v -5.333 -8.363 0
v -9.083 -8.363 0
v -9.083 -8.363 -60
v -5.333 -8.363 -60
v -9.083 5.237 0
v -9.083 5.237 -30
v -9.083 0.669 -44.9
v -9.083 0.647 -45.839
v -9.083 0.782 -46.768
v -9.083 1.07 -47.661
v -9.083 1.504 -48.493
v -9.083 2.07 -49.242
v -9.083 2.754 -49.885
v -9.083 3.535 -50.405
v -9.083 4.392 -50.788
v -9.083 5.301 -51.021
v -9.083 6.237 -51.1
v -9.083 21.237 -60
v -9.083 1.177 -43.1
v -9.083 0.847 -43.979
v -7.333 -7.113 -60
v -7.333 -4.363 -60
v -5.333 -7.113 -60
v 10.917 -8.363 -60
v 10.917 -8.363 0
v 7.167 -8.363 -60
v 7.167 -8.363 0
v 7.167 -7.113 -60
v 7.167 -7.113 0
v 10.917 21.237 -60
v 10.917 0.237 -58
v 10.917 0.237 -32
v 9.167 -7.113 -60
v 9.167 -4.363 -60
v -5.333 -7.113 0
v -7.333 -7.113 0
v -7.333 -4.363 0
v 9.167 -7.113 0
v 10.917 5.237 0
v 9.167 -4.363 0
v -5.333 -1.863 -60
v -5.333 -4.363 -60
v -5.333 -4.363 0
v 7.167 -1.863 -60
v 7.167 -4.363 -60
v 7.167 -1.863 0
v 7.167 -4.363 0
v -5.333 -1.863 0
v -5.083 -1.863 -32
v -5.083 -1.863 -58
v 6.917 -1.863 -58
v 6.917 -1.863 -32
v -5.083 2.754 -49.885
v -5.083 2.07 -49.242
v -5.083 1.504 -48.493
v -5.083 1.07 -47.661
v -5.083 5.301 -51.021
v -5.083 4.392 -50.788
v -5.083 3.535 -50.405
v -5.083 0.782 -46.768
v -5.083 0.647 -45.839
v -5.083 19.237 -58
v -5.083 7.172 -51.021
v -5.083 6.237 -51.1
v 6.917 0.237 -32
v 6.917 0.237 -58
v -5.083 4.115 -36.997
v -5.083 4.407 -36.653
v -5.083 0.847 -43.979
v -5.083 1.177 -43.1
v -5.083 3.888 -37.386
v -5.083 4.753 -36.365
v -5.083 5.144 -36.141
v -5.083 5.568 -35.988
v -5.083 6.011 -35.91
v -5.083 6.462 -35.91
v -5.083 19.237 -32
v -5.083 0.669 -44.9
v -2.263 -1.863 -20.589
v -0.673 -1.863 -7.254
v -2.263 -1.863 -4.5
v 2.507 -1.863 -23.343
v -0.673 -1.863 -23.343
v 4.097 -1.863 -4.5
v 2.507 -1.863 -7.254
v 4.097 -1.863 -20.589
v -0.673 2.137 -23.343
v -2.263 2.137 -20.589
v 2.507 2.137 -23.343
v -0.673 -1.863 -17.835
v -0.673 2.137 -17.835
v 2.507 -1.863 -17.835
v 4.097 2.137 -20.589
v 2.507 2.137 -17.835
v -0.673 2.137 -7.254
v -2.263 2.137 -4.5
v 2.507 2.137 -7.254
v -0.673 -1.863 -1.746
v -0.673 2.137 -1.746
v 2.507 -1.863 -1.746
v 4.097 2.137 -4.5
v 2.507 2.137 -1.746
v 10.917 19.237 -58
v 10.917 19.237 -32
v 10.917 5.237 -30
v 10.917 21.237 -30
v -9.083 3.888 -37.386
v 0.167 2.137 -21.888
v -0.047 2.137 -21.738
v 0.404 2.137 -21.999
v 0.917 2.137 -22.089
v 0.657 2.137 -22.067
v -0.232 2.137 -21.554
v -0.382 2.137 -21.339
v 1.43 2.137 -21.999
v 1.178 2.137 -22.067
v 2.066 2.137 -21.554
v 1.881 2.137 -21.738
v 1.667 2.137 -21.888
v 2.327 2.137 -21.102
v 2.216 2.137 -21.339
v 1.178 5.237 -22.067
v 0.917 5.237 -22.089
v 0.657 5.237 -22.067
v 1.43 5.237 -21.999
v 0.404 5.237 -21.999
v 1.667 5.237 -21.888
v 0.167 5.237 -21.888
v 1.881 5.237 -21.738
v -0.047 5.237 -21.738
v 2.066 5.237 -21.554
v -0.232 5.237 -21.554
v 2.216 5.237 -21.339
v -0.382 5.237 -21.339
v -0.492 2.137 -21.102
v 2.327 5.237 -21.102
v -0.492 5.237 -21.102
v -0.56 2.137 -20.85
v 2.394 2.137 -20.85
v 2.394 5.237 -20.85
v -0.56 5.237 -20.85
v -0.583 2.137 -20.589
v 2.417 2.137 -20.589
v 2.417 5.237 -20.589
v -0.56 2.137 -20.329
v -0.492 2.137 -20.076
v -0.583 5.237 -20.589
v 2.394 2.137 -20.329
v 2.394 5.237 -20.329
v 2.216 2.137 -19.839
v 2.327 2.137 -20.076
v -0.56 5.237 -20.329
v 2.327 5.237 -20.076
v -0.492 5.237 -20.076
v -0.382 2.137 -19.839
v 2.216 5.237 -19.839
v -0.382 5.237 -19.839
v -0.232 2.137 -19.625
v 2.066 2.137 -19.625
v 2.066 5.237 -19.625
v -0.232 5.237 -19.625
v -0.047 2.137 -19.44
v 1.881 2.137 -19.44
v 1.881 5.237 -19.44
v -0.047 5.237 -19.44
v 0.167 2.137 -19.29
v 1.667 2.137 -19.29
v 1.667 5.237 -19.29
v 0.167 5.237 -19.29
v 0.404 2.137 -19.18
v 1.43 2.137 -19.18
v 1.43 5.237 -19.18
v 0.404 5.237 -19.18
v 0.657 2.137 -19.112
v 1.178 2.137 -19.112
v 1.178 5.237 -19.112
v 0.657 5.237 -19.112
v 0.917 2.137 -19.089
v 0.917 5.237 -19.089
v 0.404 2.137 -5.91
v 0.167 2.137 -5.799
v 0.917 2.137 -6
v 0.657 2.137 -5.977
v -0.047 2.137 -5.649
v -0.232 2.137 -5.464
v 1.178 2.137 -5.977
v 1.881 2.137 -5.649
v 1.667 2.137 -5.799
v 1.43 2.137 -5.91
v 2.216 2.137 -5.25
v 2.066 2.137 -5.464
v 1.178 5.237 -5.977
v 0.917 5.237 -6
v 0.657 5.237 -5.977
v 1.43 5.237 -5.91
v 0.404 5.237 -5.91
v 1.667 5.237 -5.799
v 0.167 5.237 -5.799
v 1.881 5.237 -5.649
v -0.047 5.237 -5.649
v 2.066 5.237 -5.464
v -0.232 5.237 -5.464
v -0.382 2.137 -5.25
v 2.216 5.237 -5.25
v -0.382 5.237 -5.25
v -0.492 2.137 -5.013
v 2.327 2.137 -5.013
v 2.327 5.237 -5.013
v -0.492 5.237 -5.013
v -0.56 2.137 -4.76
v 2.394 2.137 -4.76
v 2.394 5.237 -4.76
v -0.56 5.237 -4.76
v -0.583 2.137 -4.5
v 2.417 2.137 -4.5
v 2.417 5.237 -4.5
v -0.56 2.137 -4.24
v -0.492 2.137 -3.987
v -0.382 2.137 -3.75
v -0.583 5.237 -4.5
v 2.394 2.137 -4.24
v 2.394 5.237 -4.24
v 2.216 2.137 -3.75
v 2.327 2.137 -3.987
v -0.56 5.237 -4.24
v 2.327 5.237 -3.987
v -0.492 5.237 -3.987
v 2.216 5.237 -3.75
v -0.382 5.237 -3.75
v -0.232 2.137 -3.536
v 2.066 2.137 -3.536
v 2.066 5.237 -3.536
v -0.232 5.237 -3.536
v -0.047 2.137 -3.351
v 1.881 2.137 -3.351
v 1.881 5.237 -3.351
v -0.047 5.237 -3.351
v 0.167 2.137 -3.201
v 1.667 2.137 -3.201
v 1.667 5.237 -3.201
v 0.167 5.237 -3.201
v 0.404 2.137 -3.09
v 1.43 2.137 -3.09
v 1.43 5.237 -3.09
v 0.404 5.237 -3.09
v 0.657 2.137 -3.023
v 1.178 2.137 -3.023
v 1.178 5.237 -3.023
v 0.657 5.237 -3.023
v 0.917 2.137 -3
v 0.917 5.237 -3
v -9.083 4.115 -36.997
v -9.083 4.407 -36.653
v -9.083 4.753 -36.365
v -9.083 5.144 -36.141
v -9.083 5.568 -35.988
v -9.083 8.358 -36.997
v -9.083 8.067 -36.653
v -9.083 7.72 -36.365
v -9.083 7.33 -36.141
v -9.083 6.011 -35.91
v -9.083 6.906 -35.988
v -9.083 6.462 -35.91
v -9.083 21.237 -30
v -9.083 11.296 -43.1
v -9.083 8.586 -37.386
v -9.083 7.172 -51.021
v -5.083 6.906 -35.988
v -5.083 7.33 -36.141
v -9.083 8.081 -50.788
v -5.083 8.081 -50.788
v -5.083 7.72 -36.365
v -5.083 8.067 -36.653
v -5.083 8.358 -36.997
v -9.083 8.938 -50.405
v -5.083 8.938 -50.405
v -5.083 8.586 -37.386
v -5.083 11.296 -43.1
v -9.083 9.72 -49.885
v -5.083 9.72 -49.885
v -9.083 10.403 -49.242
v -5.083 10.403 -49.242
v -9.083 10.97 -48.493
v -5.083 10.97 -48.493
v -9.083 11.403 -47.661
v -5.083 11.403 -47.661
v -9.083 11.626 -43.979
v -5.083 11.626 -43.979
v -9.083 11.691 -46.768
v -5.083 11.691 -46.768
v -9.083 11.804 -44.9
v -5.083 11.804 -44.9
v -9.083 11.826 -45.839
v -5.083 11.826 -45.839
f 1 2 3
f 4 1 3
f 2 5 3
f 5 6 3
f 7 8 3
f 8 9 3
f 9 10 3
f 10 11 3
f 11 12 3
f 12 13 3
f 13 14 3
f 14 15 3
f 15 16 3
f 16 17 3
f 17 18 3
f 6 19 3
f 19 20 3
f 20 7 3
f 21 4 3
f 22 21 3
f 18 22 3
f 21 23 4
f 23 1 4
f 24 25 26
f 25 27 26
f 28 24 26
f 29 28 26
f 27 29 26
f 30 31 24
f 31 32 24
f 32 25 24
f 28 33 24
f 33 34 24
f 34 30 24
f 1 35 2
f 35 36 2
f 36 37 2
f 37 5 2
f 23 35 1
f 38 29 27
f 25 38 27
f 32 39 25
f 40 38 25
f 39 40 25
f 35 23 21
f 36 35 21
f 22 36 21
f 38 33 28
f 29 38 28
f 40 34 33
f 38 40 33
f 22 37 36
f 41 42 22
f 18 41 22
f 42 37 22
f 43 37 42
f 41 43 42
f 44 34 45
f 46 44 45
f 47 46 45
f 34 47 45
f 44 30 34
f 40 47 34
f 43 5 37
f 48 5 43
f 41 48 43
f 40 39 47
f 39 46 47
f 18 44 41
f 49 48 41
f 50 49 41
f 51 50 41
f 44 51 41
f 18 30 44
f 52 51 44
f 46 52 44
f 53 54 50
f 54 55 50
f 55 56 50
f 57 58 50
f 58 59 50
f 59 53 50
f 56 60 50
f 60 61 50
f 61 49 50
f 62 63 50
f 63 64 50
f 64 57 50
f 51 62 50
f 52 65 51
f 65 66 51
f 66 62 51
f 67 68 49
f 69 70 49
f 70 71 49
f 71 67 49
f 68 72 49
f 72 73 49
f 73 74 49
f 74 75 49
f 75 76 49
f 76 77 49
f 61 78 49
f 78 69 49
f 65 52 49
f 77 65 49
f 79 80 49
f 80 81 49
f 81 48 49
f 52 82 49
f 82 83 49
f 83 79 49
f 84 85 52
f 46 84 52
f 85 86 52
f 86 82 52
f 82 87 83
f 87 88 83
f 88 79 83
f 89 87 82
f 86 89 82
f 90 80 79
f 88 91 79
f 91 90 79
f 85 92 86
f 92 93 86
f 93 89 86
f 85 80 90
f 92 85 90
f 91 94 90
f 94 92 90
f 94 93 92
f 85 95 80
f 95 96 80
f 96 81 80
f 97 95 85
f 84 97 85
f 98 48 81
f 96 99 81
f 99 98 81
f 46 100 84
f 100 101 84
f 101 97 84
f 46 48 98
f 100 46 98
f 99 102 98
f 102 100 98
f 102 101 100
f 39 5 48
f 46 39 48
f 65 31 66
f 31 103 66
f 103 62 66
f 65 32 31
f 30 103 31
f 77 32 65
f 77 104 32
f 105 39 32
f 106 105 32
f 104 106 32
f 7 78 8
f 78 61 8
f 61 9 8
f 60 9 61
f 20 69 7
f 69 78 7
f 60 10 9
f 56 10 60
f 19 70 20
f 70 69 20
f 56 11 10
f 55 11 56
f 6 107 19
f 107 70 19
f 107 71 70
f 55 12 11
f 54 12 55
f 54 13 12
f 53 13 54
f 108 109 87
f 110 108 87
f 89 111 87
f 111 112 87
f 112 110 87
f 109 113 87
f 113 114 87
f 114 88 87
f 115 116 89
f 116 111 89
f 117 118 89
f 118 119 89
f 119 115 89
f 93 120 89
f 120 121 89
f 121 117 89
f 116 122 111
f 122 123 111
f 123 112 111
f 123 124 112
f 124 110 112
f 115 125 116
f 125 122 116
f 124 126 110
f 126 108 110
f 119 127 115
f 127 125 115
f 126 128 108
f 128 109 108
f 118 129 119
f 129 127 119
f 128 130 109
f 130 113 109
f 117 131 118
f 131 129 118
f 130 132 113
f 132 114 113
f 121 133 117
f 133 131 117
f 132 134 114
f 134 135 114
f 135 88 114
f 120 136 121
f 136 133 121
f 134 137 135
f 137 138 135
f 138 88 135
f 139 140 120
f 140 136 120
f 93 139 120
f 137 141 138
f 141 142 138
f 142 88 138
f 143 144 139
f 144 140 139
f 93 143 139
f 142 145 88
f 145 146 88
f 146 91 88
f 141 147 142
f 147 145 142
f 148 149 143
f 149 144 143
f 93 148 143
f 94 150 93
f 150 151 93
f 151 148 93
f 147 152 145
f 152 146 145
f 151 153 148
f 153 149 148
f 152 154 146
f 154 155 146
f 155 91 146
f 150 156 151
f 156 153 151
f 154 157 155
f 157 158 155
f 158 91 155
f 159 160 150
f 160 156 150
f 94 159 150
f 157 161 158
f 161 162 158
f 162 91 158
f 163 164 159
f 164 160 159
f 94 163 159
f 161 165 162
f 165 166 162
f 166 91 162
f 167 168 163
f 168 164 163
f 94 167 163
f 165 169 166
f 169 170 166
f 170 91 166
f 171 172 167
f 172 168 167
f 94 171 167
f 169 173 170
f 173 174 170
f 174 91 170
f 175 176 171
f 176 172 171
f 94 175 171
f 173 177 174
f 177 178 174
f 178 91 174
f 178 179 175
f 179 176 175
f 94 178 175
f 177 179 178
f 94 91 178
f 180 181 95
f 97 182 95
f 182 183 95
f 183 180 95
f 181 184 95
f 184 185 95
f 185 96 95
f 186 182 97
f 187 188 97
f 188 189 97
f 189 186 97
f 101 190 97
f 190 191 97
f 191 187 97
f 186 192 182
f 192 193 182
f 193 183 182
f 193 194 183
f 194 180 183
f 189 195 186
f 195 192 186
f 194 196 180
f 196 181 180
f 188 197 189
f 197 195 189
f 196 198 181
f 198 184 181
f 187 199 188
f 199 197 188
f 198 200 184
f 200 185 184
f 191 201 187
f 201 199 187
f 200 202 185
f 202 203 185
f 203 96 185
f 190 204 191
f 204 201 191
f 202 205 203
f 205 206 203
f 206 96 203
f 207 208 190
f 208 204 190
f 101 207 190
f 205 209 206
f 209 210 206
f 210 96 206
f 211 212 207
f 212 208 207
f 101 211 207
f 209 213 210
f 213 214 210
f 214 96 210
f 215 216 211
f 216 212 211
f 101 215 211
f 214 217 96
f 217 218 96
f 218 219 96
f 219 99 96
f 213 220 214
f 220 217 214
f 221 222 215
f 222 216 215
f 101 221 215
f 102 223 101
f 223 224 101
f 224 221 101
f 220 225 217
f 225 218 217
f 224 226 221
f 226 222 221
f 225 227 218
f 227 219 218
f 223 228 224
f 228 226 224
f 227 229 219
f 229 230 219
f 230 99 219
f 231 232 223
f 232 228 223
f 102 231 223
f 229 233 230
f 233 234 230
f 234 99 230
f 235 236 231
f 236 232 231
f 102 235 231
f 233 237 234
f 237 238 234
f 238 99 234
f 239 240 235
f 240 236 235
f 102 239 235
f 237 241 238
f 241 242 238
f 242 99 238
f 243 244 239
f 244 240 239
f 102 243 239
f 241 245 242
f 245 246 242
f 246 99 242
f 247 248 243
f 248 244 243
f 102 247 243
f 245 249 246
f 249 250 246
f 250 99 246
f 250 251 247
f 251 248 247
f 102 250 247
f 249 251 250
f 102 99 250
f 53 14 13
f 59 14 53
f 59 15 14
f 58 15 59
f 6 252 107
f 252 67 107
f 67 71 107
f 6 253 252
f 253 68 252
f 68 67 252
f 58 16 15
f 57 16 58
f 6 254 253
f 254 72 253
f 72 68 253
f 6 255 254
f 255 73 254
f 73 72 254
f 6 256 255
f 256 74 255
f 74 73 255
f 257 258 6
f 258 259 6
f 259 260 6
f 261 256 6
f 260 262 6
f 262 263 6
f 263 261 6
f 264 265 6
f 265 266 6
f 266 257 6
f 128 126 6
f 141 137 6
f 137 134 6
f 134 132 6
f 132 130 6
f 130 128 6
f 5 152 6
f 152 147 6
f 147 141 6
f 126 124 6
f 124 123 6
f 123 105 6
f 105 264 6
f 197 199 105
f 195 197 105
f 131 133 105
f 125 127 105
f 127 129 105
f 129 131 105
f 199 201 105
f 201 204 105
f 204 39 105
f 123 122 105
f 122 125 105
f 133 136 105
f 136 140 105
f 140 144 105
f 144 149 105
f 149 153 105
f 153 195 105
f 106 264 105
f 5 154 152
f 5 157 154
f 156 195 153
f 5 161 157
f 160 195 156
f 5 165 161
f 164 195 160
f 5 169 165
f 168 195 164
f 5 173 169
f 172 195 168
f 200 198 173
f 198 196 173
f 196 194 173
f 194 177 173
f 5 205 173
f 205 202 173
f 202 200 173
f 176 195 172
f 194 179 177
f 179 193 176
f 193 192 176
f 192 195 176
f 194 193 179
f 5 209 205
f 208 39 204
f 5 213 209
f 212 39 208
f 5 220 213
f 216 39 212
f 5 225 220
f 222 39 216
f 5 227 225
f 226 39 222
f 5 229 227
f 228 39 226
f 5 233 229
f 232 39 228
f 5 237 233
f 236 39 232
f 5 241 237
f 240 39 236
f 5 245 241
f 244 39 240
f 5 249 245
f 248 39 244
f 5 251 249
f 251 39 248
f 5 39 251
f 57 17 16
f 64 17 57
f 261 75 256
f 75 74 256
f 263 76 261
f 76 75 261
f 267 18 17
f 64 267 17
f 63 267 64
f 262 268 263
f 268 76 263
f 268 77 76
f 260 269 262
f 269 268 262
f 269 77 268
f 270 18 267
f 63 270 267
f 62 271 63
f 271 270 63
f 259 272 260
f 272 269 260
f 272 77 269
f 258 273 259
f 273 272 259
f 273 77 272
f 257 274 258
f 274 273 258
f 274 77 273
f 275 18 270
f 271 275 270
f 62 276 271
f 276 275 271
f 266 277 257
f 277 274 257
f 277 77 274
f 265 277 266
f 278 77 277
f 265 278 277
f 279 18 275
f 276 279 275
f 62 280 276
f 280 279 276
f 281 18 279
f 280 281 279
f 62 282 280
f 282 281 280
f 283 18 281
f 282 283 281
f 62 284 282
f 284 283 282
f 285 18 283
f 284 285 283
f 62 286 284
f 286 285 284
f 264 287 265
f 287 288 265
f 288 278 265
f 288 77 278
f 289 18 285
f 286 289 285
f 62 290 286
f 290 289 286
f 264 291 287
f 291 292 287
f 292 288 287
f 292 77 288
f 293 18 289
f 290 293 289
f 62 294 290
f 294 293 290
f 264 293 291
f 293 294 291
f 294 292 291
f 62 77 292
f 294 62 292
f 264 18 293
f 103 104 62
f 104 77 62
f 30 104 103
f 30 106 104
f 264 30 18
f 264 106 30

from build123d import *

# Parameters (mm, degrees)
SKETCH1_W           = 20
SKETCH1_H           = 13.6
BOSS_EXTRUDE1_DEPTH = 65
SKETCH3_R           = 1.5
CUT_EXTRUDE2_DEPTH  = 68.298918099
SKETCH5_W           = 35
SKETCH5_H           = 5
CUT_EXTRUDE4_DEPTH  = 69.519668815
SKETCH6_W           = 12
SKETCH6_H           = 31
CUT_EXTRUDE5_DEPTH  = 5
SKETCH7_W           = 20
SKETCH7_H           = 35
BOSS_EXTRUDE2_DEPTH = 21
SKETCH8_W           = 31
SKETCH8_H           = 19
CUT_EXTRUDE6_DEPTH  = 16
CUT_EXTRUDE7_DEPTH  = 71.228177029
SKETCH11_W          = 5
SKETCH11_H          = 29.6
CUT_EXTRUDE8_DEPTH  = 72.246030408
BOSS_EXTRUDE3_REACH = 68.716
SKETCH12_W          = 2
SKETCH12_H          = 29.6
CUT_EXTRUDE9_DEPTH  = 65.576940359
CUT_EXTRUDE10_DEPTH = 4


with BuildPart() as part:
    # Sketch1 → Boss-Extrude1 (new body)
    with BuildSketch(Plane.XY):
        with Locations((0.917159763, -1.563313609)):
            Rectangle(SKETCH1_W, SKETCH1_H)
    extrude(amount=-BOSS_EXTRUDE1_DEPTH)

    # Sketch3 → Cut-Extrude2 (cut, through all)
    with BuildSketch(Plane(origin=(0, 5.236686391, 0), x_dir=(1, 0, 0), z_dir=(0, 1, 0))):
        with Locations(Location((0.917159763, 4.5, 0), (0, 0, 270))):
            Circle(SKETCH3_R)
        with Locations(Location((0.917159763, 20.589405581, 0), (0, 0, 270))):
            Circle(SKETCH3_R)
    extrude(amount=-CUT_EXTRUDE2_DEPTH, mode=Mode.SUBTRACT)

    # Sketch5 → Cut-Extrude4 (cut, through all)
    with BuildSketch(Plane(origin=(10.917159763, 0, 0), x_dir=(0, 0, -1), z_dir=(1, 0, 0))):
        with Locations((47.5, 2.736686391)):
            Rectangle(SKETCH5_W, SKETCH5_H)
    extrude(amount=-CUT_EXTRUDE4_DEPTH, mode=Mode.SUBTRACT)

    # Sketch6 → Cut-Extrude5 (cut)
    with BuildSketch(Plane(origin=(0, 0.236686391, 0), x_dir=(1, 0, 0), z_dir=(0, 1, 0))):
        with Locations((0.917159763, 47.5)):
            Rectangle(SKETCH6_W, SKETCH6_H)
    extrude(amount=-CUT_EXTRUDE5_DEPTH, mode=Mode.SUBTRACT)

    # Sketch7 → Boss-Extrude2 (add)
    with BuildSketch(Plane(origin=(0, 0.236686391, 0), x_dir=(1, 0, 0), z_dir=(0, 1, 0))):
        with Locations((0.917159763, 47.5)):
            Rectangle(SKETCH7_W, SKETCH7_H)
    extrude(amount=BOSS_EXTRUDE2_DEPTH)

    # Sketch8 → Cut-Extrude6 (cut)
    with BuildSketch(Plane(origin=(10.917159763, 0, 0), x_dir=(0, 0, -1), z_dir=(1, 0, 0))):
        with Locations((47.5, 9.736686391)):
            Rectangle(SKETCH8_W, SKETCH8_H)
    extrude(amount=-CUT_EXTRUDE6_DEPTH, mode=Mode.SUBTRACT)

    # Sketch9 → Cut-Extrude7 (cut, through all)
    with BuildSketch(Plane(origin=(-5.082840237, 0, 0), x_dir=(0, 0, -1), z_dir=(1, 0, 0))):
        with BuildLine():
            Line((37.385714286, 8.585806938), (43.1, 11.296330647))
            ThreePointArc((43.1, 11.296330647), (51.1, 6.236686391), (43.1, 1.177042134))
            Line((43.1, 1.177042134), (37.385714286, 3.887565843))
            ThreePointArc((37.385714286, 3.887565843), (35.9, 6.236686391), (37.385714286, 8.585806938))
        make_face()
    extrude(amount=-CUT_EXTRUDE7_DEPTH, mode=Mode.SUBTRACT)

    # Sketch11 → Cut-Extrude8 (cut, through all)
    with BuildSketch(Plane(origin=(10.917159763, 0, 0), x_dir=(0, 0, -1), z_dir=(1, 0, 0))):
        with Locations((62.5, 6.436686391)):
            Rectangle(SKETCH11_W, SKETCH11_H)
    extrude(amount=-CUT_EXTRUDE8_DEPTH, mode=Mode.SUBTRACT)

    # Boss-Extrude3: up to this face of the body (flat: up to its plane)
    boss_extrude3_end = Plane(part.part.faces().sort_by_distance((-9.082840237, 3.675844839, -34.656950913))[0])
    # Sketch12 → Boss-Extrude3 (add, up to the picked face)
    with BuildSketch(Plane(origin=(10.917159763, 0, 0), x_dir=(0, 0, -1), z_dir=(1, 0, 0)), mode=Mode.PRIVATE) as boss_extrude3_sk1:
        with Locations((59, 6.436686391)):
            Rectangle(SKETCH12_W, SKETCH12_H)
    boss_extrude3_tool1 = split(extrude(boss_extrude3_sk1.sketch, amount=-BOSS_EXTRUDE3_REACH, mode=Mode.PRIVATE), bisect_by=boss_extrude3_end, keep=Keep.BOTH, mode=Mode.PRIVATE)
    add(boss_extrude3_tool1.solids().sort_by(Axis((10.91716, 6.436686, -59), (-1, 0, 0)))[0])

    # Sketch2 → Cut-Extrude9 (cut, through all)
    with BuildSketch(Plane.XY):
        Polygon((-5.332840237, -8.363313609), (-5.332840237, -7.113313609), (-7.332840237, -7.113313609), (-7.332840237, -4.363313609), (-5.332840237, -4.363313609), (-5.332840237, -1.863313609), (7.167159763, -1.863313609), (7.167159763, -4.363313609), (9.167159763, -4.363313609), (9.167159763, -7.113313609), (7.167159763, -7.113313609), (7.167159763, -8.363313609), align=None)
    extrude(amount=-CUT_EXTRUDE9_DEPTH, mode=Mode.SUBTRACT)

    # Sketch13 → Cut-Extrude10 (cut)
    with BuildSketch(Plane.XZ.offset(1.863313609)):
        Polygon((2.507159763, -7.253960784), (4.097159763, -4.5), (2.507159763, -1.746039216), (-0.672840237, -1.746039216), (-2.262840237, -4.5), (-0.672840237, -7.253960784), align=None)
        Polygon((2.507159763, -23.343366365), (4.097159763, -20.589405581), (2.507159763, -17.835444797), (-0.672840237, -17.835444797), (-2.262840237, -20.589405581), (-0.672840237, -23.343366365), align=None)
    extrude(amount=-CUT_EXTRUDE10_DEPTH, mode=Mode.SUBTRACT)


solid = part.part
